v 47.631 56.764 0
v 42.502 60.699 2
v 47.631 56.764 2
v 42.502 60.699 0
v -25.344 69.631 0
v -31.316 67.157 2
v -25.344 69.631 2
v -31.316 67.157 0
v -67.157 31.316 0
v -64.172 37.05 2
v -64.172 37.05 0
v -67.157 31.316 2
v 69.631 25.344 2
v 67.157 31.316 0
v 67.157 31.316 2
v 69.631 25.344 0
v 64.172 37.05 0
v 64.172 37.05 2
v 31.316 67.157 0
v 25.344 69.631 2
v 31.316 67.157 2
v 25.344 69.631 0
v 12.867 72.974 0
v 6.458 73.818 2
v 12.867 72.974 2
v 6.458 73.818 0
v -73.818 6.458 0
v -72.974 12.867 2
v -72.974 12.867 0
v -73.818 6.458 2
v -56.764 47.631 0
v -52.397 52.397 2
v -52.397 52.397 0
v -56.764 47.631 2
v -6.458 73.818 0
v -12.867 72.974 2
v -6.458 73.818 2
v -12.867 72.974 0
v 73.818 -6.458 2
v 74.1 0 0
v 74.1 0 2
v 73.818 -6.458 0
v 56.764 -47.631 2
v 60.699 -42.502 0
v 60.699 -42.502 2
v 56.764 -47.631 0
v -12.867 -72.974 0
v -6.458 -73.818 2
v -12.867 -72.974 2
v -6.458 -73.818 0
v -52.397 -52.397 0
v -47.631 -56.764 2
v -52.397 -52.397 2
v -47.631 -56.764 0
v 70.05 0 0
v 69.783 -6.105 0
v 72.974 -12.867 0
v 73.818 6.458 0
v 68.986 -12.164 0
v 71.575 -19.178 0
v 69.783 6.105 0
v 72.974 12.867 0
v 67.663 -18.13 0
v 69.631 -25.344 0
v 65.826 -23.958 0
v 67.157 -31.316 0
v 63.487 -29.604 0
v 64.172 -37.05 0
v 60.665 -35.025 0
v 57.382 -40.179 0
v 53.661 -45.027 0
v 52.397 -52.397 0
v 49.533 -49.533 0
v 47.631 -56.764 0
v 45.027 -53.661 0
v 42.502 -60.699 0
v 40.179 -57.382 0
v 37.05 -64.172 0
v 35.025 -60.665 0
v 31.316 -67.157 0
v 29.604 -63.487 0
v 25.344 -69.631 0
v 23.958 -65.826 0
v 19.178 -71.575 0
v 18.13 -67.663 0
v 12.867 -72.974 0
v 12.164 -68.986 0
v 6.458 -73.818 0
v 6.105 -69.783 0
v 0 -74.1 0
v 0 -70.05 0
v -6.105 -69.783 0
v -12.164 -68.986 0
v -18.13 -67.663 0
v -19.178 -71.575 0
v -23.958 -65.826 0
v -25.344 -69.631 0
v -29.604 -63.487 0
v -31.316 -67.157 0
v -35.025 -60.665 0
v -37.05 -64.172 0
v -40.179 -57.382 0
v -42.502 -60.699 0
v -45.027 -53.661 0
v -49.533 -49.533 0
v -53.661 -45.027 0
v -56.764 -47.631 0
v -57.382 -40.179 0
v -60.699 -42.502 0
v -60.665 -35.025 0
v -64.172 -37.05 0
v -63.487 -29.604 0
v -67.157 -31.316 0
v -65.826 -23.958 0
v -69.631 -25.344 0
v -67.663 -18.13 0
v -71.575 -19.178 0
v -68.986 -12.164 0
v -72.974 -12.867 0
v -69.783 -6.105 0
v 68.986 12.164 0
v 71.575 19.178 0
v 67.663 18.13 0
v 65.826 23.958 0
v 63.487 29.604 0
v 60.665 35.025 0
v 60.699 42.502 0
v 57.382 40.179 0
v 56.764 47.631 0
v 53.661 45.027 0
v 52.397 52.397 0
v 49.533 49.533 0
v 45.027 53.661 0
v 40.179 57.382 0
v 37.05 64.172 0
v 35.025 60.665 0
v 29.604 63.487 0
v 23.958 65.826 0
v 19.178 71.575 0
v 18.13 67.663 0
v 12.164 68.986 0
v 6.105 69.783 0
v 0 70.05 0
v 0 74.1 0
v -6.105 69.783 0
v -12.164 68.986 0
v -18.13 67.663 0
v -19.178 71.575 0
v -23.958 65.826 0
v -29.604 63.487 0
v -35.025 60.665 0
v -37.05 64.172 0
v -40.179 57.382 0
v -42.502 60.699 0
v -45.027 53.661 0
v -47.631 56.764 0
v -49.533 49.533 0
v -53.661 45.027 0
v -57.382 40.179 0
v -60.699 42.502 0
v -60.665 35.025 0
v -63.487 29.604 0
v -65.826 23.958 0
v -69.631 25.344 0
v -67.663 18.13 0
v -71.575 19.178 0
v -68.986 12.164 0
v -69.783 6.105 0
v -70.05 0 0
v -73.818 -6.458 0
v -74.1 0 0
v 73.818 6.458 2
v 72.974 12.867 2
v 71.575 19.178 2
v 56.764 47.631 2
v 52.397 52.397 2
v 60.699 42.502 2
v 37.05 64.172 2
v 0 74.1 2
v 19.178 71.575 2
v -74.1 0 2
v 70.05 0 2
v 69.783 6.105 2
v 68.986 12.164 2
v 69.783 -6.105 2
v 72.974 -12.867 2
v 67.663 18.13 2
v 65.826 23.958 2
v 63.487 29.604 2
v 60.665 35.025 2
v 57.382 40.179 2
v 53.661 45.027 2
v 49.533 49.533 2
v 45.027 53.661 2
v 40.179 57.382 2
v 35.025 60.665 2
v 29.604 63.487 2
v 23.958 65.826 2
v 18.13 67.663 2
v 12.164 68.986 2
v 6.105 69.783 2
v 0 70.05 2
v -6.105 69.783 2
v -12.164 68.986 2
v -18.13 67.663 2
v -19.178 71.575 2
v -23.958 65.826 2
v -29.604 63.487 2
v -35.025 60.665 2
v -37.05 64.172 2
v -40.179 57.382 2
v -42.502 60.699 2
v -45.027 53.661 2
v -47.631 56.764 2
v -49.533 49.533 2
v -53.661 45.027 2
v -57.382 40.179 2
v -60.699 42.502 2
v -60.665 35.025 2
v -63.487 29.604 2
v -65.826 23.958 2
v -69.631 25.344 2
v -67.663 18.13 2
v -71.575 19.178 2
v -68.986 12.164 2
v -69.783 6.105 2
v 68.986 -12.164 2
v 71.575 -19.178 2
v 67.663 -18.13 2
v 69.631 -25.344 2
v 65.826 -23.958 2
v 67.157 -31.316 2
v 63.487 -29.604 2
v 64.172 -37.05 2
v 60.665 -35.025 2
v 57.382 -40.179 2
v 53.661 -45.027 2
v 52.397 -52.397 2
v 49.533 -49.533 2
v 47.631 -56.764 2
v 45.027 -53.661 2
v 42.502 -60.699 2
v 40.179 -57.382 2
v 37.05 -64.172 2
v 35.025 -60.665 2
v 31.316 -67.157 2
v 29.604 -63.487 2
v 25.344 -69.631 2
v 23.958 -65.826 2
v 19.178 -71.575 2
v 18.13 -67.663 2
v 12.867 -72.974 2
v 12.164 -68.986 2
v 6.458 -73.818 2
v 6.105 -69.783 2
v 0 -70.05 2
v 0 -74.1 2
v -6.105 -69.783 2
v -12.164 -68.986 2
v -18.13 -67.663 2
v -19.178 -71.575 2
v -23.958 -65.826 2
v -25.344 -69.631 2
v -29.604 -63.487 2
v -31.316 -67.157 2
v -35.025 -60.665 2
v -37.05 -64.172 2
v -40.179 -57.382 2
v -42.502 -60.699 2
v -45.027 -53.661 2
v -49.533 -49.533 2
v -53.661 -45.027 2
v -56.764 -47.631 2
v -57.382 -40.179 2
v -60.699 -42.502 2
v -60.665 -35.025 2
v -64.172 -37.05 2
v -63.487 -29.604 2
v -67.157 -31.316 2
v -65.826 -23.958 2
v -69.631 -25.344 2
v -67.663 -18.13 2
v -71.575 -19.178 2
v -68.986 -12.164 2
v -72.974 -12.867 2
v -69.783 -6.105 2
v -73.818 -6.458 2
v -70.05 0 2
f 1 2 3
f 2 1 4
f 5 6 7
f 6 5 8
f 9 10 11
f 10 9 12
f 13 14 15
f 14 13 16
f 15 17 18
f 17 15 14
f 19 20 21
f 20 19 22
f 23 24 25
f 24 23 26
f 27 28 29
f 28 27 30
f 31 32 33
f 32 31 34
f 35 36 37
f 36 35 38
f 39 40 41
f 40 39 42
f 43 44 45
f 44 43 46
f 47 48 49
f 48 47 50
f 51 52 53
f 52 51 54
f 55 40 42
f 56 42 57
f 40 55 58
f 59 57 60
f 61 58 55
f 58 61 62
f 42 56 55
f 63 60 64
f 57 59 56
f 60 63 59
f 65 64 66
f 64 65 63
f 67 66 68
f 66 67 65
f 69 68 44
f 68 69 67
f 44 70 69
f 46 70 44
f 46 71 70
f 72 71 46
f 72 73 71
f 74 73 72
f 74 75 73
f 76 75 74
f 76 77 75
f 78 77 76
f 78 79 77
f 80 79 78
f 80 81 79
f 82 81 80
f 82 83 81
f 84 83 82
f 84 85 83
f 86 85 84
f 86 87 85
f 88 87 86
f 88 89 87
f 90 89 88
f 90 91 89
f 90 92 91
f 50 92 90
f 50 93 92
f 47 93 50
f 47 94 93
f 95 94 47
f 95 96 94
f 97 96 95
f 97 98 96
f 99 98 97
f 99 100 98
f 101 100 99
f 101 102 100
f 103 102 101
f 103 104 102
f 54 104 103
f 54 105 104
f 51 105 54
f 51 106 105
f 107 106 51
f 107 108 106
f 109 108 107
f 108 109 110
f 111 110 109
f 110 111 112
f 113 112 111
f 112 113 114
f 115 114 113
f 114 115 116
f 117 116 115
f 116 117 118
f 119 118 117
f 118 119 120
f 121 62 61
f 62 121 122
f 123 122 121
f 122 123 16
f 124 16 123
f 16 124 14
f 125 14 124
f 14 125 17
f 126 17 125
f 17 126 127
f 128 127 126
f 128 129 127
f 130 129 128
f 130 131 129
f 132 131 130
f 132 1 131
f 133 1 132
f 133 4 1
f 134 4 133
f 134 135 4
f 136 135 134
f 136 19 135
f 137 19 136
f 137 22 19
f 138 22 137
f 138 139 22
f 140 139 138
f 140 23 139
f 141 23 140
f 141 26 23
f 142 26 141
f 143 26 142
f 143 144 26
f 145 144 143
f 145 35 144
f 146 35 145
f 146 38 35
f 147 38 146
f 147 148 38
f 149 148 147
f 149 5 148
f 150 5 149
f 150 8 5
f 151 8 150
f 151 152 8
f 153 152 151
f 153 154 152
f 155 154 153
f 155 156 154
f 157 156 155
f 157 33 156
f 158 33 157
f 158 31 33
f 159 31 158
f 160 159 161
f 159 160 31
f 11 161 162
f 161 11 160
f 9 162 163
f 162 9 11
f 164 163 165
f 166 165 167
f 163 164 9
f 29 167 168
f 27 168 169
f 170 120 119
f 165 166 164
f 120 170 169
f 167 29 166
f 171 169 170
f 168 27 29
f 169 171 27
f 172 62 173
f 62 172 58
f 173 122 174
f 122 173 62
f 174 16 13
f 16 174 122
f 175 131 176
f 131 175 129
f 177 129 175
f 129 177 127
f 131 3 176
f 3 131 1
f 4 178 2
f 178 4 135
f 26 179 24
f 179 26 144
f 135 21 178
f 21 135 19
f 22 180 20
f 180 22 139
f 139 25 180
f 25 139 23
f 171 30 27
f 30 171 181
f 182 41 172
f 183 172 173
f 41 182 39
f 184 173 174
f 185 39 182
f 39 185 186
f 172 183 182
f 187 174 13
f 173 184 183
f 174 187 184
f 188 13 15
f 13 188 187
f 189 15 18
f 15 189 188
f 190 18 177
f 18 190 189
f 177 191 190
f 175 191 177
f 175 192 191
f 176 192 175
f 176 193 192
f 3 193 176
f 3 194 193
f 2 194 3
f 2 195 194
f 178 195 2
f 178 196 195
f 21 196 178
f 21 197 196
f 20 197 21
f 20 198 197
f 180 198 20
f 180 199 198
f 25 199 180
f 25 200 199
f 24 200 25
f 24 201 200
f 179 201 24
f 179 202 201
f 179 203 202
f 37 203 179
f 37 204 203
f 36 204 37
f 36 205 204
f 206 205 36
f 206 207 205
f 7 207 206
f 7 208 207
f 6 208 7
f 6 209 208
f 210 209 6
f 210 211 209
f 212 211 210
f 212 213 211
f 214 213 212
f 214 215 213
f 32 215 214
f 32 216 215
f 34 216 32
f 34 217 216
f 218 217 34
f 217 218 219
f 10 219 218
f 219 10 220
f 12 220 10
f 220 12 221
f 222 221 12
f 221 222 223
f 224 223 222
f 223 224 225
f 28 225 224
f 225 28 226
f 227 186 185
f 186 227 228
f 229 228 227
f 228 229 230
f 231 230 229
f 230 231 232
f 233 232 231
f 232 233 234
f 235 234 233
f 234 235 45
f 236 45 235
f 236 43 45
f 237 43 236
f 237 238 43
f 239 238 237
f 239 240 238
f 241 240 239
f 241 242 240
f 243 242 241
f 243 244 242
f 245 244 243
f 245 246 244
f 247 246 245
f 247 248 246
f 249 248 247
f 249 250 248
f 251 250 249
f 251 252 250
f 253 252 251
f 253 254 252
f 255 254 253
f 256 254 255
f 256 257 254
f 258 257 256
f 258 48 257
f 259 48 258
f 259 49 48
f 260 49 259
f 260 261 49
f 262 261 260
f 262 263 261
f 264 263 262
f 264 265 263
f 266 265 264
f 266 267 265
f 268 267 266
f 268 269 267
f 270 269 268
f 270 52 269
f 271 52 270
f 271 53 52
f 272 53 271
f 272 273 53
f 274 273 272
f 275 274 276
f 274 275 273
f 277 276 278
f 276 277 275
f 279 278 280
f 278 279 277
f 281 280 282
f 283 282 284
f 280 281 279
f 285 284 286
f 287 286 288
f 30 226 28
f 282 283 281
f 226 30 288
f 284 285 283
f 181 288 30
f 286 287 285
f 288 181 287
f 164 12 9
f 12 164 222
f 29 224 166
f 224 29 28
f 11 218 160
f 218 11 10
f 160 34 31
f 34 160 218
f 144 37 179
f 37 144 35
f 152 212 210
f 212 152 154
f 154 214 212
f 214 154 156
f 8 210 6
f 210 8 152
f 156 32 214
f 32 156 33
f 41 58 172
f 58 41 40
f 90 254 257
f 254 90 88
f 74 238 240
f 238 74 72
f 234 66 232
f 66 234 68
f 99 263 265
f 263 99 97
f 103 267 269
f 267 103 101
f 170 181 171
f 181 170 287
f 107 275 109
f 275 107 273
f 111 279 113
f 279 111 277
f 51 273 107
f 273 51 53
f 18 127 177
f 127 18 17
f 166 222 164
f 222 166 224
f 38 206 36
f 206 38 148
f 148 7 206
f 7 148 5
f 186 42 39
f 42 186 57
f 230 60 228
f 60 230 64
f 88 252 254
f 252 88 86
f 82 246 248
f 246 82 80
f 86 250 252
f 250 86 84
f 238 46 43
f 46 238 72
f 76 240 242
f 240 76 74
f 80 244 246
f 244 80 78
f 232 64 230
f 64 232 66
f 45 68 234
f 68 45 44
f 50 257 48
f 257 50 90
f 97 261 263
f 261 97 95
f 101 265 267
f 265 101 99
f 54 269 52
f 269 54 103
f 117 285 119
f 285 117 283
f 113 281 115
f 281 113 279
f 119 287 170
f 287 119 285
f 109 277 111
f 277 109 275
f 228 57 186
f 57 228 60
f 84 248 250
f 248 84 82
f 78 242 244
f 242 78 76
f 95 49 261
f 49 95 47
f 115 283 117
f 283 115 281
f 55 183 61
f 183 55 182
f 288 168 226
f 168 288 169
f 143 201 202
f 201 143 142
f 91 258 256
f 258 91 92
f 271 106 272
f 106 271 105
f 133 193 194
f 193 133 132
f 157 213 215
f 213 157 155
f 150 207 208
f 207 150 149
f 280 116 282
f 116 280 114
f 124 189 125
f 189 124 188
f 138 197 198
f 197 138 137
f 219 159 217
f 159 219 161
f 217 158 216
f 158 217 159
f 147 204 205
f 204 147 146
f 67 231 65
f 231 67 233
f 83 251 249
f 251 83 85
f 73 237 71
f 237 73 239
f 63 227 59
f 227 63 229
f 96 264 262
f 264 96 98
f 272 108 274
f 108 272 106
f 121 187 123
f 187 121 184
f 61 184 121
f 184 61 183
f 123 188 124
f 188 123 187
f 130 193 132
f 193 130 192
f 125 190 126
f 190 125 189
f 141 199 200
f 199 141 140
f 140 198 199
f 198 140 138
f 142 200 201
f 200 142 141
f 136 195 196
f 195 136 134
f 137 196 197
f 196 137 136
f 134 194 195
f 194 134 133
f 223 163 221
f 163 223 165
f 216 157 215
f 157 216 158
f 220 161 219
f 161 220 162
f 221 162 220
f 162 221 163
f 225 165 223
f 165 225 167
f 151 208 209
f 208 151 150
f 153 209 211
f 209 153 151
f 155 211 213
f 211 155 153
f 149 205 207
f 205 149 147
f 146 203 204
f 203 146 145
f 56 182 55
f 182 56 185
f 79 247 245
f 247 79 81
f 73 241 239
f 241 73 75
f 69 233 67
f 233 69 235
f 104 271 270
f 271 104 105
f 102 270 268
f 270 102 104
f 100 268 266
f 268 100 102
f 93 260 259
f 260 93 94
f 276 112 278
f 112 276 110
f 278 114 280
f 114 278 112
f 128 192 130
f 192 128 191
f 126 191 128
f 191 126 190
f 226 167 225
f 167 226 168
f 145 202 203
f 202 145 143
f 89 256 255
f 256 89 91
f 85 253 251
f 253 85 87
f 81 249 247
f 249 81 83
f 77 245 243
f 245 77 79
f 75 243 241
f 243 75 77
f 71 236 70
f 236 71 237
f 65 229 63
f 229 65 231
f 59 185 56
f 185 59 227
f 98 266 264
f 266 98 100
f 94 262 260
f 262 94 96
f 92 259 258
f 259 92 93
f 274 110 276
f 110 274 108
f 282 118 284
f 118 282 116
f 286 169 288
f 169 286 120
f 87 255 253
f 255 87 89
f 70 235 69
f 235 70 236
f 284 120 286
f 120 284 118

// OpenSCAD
// P14 — Fan gasket ring. Flat. TPU 95A, 100%, 25-40 mm/s.
// Needs lfh_v1_reference.scad in the same folder.
include <lfh_v1_reference.scad>
part = "RING";
pose = "print";
